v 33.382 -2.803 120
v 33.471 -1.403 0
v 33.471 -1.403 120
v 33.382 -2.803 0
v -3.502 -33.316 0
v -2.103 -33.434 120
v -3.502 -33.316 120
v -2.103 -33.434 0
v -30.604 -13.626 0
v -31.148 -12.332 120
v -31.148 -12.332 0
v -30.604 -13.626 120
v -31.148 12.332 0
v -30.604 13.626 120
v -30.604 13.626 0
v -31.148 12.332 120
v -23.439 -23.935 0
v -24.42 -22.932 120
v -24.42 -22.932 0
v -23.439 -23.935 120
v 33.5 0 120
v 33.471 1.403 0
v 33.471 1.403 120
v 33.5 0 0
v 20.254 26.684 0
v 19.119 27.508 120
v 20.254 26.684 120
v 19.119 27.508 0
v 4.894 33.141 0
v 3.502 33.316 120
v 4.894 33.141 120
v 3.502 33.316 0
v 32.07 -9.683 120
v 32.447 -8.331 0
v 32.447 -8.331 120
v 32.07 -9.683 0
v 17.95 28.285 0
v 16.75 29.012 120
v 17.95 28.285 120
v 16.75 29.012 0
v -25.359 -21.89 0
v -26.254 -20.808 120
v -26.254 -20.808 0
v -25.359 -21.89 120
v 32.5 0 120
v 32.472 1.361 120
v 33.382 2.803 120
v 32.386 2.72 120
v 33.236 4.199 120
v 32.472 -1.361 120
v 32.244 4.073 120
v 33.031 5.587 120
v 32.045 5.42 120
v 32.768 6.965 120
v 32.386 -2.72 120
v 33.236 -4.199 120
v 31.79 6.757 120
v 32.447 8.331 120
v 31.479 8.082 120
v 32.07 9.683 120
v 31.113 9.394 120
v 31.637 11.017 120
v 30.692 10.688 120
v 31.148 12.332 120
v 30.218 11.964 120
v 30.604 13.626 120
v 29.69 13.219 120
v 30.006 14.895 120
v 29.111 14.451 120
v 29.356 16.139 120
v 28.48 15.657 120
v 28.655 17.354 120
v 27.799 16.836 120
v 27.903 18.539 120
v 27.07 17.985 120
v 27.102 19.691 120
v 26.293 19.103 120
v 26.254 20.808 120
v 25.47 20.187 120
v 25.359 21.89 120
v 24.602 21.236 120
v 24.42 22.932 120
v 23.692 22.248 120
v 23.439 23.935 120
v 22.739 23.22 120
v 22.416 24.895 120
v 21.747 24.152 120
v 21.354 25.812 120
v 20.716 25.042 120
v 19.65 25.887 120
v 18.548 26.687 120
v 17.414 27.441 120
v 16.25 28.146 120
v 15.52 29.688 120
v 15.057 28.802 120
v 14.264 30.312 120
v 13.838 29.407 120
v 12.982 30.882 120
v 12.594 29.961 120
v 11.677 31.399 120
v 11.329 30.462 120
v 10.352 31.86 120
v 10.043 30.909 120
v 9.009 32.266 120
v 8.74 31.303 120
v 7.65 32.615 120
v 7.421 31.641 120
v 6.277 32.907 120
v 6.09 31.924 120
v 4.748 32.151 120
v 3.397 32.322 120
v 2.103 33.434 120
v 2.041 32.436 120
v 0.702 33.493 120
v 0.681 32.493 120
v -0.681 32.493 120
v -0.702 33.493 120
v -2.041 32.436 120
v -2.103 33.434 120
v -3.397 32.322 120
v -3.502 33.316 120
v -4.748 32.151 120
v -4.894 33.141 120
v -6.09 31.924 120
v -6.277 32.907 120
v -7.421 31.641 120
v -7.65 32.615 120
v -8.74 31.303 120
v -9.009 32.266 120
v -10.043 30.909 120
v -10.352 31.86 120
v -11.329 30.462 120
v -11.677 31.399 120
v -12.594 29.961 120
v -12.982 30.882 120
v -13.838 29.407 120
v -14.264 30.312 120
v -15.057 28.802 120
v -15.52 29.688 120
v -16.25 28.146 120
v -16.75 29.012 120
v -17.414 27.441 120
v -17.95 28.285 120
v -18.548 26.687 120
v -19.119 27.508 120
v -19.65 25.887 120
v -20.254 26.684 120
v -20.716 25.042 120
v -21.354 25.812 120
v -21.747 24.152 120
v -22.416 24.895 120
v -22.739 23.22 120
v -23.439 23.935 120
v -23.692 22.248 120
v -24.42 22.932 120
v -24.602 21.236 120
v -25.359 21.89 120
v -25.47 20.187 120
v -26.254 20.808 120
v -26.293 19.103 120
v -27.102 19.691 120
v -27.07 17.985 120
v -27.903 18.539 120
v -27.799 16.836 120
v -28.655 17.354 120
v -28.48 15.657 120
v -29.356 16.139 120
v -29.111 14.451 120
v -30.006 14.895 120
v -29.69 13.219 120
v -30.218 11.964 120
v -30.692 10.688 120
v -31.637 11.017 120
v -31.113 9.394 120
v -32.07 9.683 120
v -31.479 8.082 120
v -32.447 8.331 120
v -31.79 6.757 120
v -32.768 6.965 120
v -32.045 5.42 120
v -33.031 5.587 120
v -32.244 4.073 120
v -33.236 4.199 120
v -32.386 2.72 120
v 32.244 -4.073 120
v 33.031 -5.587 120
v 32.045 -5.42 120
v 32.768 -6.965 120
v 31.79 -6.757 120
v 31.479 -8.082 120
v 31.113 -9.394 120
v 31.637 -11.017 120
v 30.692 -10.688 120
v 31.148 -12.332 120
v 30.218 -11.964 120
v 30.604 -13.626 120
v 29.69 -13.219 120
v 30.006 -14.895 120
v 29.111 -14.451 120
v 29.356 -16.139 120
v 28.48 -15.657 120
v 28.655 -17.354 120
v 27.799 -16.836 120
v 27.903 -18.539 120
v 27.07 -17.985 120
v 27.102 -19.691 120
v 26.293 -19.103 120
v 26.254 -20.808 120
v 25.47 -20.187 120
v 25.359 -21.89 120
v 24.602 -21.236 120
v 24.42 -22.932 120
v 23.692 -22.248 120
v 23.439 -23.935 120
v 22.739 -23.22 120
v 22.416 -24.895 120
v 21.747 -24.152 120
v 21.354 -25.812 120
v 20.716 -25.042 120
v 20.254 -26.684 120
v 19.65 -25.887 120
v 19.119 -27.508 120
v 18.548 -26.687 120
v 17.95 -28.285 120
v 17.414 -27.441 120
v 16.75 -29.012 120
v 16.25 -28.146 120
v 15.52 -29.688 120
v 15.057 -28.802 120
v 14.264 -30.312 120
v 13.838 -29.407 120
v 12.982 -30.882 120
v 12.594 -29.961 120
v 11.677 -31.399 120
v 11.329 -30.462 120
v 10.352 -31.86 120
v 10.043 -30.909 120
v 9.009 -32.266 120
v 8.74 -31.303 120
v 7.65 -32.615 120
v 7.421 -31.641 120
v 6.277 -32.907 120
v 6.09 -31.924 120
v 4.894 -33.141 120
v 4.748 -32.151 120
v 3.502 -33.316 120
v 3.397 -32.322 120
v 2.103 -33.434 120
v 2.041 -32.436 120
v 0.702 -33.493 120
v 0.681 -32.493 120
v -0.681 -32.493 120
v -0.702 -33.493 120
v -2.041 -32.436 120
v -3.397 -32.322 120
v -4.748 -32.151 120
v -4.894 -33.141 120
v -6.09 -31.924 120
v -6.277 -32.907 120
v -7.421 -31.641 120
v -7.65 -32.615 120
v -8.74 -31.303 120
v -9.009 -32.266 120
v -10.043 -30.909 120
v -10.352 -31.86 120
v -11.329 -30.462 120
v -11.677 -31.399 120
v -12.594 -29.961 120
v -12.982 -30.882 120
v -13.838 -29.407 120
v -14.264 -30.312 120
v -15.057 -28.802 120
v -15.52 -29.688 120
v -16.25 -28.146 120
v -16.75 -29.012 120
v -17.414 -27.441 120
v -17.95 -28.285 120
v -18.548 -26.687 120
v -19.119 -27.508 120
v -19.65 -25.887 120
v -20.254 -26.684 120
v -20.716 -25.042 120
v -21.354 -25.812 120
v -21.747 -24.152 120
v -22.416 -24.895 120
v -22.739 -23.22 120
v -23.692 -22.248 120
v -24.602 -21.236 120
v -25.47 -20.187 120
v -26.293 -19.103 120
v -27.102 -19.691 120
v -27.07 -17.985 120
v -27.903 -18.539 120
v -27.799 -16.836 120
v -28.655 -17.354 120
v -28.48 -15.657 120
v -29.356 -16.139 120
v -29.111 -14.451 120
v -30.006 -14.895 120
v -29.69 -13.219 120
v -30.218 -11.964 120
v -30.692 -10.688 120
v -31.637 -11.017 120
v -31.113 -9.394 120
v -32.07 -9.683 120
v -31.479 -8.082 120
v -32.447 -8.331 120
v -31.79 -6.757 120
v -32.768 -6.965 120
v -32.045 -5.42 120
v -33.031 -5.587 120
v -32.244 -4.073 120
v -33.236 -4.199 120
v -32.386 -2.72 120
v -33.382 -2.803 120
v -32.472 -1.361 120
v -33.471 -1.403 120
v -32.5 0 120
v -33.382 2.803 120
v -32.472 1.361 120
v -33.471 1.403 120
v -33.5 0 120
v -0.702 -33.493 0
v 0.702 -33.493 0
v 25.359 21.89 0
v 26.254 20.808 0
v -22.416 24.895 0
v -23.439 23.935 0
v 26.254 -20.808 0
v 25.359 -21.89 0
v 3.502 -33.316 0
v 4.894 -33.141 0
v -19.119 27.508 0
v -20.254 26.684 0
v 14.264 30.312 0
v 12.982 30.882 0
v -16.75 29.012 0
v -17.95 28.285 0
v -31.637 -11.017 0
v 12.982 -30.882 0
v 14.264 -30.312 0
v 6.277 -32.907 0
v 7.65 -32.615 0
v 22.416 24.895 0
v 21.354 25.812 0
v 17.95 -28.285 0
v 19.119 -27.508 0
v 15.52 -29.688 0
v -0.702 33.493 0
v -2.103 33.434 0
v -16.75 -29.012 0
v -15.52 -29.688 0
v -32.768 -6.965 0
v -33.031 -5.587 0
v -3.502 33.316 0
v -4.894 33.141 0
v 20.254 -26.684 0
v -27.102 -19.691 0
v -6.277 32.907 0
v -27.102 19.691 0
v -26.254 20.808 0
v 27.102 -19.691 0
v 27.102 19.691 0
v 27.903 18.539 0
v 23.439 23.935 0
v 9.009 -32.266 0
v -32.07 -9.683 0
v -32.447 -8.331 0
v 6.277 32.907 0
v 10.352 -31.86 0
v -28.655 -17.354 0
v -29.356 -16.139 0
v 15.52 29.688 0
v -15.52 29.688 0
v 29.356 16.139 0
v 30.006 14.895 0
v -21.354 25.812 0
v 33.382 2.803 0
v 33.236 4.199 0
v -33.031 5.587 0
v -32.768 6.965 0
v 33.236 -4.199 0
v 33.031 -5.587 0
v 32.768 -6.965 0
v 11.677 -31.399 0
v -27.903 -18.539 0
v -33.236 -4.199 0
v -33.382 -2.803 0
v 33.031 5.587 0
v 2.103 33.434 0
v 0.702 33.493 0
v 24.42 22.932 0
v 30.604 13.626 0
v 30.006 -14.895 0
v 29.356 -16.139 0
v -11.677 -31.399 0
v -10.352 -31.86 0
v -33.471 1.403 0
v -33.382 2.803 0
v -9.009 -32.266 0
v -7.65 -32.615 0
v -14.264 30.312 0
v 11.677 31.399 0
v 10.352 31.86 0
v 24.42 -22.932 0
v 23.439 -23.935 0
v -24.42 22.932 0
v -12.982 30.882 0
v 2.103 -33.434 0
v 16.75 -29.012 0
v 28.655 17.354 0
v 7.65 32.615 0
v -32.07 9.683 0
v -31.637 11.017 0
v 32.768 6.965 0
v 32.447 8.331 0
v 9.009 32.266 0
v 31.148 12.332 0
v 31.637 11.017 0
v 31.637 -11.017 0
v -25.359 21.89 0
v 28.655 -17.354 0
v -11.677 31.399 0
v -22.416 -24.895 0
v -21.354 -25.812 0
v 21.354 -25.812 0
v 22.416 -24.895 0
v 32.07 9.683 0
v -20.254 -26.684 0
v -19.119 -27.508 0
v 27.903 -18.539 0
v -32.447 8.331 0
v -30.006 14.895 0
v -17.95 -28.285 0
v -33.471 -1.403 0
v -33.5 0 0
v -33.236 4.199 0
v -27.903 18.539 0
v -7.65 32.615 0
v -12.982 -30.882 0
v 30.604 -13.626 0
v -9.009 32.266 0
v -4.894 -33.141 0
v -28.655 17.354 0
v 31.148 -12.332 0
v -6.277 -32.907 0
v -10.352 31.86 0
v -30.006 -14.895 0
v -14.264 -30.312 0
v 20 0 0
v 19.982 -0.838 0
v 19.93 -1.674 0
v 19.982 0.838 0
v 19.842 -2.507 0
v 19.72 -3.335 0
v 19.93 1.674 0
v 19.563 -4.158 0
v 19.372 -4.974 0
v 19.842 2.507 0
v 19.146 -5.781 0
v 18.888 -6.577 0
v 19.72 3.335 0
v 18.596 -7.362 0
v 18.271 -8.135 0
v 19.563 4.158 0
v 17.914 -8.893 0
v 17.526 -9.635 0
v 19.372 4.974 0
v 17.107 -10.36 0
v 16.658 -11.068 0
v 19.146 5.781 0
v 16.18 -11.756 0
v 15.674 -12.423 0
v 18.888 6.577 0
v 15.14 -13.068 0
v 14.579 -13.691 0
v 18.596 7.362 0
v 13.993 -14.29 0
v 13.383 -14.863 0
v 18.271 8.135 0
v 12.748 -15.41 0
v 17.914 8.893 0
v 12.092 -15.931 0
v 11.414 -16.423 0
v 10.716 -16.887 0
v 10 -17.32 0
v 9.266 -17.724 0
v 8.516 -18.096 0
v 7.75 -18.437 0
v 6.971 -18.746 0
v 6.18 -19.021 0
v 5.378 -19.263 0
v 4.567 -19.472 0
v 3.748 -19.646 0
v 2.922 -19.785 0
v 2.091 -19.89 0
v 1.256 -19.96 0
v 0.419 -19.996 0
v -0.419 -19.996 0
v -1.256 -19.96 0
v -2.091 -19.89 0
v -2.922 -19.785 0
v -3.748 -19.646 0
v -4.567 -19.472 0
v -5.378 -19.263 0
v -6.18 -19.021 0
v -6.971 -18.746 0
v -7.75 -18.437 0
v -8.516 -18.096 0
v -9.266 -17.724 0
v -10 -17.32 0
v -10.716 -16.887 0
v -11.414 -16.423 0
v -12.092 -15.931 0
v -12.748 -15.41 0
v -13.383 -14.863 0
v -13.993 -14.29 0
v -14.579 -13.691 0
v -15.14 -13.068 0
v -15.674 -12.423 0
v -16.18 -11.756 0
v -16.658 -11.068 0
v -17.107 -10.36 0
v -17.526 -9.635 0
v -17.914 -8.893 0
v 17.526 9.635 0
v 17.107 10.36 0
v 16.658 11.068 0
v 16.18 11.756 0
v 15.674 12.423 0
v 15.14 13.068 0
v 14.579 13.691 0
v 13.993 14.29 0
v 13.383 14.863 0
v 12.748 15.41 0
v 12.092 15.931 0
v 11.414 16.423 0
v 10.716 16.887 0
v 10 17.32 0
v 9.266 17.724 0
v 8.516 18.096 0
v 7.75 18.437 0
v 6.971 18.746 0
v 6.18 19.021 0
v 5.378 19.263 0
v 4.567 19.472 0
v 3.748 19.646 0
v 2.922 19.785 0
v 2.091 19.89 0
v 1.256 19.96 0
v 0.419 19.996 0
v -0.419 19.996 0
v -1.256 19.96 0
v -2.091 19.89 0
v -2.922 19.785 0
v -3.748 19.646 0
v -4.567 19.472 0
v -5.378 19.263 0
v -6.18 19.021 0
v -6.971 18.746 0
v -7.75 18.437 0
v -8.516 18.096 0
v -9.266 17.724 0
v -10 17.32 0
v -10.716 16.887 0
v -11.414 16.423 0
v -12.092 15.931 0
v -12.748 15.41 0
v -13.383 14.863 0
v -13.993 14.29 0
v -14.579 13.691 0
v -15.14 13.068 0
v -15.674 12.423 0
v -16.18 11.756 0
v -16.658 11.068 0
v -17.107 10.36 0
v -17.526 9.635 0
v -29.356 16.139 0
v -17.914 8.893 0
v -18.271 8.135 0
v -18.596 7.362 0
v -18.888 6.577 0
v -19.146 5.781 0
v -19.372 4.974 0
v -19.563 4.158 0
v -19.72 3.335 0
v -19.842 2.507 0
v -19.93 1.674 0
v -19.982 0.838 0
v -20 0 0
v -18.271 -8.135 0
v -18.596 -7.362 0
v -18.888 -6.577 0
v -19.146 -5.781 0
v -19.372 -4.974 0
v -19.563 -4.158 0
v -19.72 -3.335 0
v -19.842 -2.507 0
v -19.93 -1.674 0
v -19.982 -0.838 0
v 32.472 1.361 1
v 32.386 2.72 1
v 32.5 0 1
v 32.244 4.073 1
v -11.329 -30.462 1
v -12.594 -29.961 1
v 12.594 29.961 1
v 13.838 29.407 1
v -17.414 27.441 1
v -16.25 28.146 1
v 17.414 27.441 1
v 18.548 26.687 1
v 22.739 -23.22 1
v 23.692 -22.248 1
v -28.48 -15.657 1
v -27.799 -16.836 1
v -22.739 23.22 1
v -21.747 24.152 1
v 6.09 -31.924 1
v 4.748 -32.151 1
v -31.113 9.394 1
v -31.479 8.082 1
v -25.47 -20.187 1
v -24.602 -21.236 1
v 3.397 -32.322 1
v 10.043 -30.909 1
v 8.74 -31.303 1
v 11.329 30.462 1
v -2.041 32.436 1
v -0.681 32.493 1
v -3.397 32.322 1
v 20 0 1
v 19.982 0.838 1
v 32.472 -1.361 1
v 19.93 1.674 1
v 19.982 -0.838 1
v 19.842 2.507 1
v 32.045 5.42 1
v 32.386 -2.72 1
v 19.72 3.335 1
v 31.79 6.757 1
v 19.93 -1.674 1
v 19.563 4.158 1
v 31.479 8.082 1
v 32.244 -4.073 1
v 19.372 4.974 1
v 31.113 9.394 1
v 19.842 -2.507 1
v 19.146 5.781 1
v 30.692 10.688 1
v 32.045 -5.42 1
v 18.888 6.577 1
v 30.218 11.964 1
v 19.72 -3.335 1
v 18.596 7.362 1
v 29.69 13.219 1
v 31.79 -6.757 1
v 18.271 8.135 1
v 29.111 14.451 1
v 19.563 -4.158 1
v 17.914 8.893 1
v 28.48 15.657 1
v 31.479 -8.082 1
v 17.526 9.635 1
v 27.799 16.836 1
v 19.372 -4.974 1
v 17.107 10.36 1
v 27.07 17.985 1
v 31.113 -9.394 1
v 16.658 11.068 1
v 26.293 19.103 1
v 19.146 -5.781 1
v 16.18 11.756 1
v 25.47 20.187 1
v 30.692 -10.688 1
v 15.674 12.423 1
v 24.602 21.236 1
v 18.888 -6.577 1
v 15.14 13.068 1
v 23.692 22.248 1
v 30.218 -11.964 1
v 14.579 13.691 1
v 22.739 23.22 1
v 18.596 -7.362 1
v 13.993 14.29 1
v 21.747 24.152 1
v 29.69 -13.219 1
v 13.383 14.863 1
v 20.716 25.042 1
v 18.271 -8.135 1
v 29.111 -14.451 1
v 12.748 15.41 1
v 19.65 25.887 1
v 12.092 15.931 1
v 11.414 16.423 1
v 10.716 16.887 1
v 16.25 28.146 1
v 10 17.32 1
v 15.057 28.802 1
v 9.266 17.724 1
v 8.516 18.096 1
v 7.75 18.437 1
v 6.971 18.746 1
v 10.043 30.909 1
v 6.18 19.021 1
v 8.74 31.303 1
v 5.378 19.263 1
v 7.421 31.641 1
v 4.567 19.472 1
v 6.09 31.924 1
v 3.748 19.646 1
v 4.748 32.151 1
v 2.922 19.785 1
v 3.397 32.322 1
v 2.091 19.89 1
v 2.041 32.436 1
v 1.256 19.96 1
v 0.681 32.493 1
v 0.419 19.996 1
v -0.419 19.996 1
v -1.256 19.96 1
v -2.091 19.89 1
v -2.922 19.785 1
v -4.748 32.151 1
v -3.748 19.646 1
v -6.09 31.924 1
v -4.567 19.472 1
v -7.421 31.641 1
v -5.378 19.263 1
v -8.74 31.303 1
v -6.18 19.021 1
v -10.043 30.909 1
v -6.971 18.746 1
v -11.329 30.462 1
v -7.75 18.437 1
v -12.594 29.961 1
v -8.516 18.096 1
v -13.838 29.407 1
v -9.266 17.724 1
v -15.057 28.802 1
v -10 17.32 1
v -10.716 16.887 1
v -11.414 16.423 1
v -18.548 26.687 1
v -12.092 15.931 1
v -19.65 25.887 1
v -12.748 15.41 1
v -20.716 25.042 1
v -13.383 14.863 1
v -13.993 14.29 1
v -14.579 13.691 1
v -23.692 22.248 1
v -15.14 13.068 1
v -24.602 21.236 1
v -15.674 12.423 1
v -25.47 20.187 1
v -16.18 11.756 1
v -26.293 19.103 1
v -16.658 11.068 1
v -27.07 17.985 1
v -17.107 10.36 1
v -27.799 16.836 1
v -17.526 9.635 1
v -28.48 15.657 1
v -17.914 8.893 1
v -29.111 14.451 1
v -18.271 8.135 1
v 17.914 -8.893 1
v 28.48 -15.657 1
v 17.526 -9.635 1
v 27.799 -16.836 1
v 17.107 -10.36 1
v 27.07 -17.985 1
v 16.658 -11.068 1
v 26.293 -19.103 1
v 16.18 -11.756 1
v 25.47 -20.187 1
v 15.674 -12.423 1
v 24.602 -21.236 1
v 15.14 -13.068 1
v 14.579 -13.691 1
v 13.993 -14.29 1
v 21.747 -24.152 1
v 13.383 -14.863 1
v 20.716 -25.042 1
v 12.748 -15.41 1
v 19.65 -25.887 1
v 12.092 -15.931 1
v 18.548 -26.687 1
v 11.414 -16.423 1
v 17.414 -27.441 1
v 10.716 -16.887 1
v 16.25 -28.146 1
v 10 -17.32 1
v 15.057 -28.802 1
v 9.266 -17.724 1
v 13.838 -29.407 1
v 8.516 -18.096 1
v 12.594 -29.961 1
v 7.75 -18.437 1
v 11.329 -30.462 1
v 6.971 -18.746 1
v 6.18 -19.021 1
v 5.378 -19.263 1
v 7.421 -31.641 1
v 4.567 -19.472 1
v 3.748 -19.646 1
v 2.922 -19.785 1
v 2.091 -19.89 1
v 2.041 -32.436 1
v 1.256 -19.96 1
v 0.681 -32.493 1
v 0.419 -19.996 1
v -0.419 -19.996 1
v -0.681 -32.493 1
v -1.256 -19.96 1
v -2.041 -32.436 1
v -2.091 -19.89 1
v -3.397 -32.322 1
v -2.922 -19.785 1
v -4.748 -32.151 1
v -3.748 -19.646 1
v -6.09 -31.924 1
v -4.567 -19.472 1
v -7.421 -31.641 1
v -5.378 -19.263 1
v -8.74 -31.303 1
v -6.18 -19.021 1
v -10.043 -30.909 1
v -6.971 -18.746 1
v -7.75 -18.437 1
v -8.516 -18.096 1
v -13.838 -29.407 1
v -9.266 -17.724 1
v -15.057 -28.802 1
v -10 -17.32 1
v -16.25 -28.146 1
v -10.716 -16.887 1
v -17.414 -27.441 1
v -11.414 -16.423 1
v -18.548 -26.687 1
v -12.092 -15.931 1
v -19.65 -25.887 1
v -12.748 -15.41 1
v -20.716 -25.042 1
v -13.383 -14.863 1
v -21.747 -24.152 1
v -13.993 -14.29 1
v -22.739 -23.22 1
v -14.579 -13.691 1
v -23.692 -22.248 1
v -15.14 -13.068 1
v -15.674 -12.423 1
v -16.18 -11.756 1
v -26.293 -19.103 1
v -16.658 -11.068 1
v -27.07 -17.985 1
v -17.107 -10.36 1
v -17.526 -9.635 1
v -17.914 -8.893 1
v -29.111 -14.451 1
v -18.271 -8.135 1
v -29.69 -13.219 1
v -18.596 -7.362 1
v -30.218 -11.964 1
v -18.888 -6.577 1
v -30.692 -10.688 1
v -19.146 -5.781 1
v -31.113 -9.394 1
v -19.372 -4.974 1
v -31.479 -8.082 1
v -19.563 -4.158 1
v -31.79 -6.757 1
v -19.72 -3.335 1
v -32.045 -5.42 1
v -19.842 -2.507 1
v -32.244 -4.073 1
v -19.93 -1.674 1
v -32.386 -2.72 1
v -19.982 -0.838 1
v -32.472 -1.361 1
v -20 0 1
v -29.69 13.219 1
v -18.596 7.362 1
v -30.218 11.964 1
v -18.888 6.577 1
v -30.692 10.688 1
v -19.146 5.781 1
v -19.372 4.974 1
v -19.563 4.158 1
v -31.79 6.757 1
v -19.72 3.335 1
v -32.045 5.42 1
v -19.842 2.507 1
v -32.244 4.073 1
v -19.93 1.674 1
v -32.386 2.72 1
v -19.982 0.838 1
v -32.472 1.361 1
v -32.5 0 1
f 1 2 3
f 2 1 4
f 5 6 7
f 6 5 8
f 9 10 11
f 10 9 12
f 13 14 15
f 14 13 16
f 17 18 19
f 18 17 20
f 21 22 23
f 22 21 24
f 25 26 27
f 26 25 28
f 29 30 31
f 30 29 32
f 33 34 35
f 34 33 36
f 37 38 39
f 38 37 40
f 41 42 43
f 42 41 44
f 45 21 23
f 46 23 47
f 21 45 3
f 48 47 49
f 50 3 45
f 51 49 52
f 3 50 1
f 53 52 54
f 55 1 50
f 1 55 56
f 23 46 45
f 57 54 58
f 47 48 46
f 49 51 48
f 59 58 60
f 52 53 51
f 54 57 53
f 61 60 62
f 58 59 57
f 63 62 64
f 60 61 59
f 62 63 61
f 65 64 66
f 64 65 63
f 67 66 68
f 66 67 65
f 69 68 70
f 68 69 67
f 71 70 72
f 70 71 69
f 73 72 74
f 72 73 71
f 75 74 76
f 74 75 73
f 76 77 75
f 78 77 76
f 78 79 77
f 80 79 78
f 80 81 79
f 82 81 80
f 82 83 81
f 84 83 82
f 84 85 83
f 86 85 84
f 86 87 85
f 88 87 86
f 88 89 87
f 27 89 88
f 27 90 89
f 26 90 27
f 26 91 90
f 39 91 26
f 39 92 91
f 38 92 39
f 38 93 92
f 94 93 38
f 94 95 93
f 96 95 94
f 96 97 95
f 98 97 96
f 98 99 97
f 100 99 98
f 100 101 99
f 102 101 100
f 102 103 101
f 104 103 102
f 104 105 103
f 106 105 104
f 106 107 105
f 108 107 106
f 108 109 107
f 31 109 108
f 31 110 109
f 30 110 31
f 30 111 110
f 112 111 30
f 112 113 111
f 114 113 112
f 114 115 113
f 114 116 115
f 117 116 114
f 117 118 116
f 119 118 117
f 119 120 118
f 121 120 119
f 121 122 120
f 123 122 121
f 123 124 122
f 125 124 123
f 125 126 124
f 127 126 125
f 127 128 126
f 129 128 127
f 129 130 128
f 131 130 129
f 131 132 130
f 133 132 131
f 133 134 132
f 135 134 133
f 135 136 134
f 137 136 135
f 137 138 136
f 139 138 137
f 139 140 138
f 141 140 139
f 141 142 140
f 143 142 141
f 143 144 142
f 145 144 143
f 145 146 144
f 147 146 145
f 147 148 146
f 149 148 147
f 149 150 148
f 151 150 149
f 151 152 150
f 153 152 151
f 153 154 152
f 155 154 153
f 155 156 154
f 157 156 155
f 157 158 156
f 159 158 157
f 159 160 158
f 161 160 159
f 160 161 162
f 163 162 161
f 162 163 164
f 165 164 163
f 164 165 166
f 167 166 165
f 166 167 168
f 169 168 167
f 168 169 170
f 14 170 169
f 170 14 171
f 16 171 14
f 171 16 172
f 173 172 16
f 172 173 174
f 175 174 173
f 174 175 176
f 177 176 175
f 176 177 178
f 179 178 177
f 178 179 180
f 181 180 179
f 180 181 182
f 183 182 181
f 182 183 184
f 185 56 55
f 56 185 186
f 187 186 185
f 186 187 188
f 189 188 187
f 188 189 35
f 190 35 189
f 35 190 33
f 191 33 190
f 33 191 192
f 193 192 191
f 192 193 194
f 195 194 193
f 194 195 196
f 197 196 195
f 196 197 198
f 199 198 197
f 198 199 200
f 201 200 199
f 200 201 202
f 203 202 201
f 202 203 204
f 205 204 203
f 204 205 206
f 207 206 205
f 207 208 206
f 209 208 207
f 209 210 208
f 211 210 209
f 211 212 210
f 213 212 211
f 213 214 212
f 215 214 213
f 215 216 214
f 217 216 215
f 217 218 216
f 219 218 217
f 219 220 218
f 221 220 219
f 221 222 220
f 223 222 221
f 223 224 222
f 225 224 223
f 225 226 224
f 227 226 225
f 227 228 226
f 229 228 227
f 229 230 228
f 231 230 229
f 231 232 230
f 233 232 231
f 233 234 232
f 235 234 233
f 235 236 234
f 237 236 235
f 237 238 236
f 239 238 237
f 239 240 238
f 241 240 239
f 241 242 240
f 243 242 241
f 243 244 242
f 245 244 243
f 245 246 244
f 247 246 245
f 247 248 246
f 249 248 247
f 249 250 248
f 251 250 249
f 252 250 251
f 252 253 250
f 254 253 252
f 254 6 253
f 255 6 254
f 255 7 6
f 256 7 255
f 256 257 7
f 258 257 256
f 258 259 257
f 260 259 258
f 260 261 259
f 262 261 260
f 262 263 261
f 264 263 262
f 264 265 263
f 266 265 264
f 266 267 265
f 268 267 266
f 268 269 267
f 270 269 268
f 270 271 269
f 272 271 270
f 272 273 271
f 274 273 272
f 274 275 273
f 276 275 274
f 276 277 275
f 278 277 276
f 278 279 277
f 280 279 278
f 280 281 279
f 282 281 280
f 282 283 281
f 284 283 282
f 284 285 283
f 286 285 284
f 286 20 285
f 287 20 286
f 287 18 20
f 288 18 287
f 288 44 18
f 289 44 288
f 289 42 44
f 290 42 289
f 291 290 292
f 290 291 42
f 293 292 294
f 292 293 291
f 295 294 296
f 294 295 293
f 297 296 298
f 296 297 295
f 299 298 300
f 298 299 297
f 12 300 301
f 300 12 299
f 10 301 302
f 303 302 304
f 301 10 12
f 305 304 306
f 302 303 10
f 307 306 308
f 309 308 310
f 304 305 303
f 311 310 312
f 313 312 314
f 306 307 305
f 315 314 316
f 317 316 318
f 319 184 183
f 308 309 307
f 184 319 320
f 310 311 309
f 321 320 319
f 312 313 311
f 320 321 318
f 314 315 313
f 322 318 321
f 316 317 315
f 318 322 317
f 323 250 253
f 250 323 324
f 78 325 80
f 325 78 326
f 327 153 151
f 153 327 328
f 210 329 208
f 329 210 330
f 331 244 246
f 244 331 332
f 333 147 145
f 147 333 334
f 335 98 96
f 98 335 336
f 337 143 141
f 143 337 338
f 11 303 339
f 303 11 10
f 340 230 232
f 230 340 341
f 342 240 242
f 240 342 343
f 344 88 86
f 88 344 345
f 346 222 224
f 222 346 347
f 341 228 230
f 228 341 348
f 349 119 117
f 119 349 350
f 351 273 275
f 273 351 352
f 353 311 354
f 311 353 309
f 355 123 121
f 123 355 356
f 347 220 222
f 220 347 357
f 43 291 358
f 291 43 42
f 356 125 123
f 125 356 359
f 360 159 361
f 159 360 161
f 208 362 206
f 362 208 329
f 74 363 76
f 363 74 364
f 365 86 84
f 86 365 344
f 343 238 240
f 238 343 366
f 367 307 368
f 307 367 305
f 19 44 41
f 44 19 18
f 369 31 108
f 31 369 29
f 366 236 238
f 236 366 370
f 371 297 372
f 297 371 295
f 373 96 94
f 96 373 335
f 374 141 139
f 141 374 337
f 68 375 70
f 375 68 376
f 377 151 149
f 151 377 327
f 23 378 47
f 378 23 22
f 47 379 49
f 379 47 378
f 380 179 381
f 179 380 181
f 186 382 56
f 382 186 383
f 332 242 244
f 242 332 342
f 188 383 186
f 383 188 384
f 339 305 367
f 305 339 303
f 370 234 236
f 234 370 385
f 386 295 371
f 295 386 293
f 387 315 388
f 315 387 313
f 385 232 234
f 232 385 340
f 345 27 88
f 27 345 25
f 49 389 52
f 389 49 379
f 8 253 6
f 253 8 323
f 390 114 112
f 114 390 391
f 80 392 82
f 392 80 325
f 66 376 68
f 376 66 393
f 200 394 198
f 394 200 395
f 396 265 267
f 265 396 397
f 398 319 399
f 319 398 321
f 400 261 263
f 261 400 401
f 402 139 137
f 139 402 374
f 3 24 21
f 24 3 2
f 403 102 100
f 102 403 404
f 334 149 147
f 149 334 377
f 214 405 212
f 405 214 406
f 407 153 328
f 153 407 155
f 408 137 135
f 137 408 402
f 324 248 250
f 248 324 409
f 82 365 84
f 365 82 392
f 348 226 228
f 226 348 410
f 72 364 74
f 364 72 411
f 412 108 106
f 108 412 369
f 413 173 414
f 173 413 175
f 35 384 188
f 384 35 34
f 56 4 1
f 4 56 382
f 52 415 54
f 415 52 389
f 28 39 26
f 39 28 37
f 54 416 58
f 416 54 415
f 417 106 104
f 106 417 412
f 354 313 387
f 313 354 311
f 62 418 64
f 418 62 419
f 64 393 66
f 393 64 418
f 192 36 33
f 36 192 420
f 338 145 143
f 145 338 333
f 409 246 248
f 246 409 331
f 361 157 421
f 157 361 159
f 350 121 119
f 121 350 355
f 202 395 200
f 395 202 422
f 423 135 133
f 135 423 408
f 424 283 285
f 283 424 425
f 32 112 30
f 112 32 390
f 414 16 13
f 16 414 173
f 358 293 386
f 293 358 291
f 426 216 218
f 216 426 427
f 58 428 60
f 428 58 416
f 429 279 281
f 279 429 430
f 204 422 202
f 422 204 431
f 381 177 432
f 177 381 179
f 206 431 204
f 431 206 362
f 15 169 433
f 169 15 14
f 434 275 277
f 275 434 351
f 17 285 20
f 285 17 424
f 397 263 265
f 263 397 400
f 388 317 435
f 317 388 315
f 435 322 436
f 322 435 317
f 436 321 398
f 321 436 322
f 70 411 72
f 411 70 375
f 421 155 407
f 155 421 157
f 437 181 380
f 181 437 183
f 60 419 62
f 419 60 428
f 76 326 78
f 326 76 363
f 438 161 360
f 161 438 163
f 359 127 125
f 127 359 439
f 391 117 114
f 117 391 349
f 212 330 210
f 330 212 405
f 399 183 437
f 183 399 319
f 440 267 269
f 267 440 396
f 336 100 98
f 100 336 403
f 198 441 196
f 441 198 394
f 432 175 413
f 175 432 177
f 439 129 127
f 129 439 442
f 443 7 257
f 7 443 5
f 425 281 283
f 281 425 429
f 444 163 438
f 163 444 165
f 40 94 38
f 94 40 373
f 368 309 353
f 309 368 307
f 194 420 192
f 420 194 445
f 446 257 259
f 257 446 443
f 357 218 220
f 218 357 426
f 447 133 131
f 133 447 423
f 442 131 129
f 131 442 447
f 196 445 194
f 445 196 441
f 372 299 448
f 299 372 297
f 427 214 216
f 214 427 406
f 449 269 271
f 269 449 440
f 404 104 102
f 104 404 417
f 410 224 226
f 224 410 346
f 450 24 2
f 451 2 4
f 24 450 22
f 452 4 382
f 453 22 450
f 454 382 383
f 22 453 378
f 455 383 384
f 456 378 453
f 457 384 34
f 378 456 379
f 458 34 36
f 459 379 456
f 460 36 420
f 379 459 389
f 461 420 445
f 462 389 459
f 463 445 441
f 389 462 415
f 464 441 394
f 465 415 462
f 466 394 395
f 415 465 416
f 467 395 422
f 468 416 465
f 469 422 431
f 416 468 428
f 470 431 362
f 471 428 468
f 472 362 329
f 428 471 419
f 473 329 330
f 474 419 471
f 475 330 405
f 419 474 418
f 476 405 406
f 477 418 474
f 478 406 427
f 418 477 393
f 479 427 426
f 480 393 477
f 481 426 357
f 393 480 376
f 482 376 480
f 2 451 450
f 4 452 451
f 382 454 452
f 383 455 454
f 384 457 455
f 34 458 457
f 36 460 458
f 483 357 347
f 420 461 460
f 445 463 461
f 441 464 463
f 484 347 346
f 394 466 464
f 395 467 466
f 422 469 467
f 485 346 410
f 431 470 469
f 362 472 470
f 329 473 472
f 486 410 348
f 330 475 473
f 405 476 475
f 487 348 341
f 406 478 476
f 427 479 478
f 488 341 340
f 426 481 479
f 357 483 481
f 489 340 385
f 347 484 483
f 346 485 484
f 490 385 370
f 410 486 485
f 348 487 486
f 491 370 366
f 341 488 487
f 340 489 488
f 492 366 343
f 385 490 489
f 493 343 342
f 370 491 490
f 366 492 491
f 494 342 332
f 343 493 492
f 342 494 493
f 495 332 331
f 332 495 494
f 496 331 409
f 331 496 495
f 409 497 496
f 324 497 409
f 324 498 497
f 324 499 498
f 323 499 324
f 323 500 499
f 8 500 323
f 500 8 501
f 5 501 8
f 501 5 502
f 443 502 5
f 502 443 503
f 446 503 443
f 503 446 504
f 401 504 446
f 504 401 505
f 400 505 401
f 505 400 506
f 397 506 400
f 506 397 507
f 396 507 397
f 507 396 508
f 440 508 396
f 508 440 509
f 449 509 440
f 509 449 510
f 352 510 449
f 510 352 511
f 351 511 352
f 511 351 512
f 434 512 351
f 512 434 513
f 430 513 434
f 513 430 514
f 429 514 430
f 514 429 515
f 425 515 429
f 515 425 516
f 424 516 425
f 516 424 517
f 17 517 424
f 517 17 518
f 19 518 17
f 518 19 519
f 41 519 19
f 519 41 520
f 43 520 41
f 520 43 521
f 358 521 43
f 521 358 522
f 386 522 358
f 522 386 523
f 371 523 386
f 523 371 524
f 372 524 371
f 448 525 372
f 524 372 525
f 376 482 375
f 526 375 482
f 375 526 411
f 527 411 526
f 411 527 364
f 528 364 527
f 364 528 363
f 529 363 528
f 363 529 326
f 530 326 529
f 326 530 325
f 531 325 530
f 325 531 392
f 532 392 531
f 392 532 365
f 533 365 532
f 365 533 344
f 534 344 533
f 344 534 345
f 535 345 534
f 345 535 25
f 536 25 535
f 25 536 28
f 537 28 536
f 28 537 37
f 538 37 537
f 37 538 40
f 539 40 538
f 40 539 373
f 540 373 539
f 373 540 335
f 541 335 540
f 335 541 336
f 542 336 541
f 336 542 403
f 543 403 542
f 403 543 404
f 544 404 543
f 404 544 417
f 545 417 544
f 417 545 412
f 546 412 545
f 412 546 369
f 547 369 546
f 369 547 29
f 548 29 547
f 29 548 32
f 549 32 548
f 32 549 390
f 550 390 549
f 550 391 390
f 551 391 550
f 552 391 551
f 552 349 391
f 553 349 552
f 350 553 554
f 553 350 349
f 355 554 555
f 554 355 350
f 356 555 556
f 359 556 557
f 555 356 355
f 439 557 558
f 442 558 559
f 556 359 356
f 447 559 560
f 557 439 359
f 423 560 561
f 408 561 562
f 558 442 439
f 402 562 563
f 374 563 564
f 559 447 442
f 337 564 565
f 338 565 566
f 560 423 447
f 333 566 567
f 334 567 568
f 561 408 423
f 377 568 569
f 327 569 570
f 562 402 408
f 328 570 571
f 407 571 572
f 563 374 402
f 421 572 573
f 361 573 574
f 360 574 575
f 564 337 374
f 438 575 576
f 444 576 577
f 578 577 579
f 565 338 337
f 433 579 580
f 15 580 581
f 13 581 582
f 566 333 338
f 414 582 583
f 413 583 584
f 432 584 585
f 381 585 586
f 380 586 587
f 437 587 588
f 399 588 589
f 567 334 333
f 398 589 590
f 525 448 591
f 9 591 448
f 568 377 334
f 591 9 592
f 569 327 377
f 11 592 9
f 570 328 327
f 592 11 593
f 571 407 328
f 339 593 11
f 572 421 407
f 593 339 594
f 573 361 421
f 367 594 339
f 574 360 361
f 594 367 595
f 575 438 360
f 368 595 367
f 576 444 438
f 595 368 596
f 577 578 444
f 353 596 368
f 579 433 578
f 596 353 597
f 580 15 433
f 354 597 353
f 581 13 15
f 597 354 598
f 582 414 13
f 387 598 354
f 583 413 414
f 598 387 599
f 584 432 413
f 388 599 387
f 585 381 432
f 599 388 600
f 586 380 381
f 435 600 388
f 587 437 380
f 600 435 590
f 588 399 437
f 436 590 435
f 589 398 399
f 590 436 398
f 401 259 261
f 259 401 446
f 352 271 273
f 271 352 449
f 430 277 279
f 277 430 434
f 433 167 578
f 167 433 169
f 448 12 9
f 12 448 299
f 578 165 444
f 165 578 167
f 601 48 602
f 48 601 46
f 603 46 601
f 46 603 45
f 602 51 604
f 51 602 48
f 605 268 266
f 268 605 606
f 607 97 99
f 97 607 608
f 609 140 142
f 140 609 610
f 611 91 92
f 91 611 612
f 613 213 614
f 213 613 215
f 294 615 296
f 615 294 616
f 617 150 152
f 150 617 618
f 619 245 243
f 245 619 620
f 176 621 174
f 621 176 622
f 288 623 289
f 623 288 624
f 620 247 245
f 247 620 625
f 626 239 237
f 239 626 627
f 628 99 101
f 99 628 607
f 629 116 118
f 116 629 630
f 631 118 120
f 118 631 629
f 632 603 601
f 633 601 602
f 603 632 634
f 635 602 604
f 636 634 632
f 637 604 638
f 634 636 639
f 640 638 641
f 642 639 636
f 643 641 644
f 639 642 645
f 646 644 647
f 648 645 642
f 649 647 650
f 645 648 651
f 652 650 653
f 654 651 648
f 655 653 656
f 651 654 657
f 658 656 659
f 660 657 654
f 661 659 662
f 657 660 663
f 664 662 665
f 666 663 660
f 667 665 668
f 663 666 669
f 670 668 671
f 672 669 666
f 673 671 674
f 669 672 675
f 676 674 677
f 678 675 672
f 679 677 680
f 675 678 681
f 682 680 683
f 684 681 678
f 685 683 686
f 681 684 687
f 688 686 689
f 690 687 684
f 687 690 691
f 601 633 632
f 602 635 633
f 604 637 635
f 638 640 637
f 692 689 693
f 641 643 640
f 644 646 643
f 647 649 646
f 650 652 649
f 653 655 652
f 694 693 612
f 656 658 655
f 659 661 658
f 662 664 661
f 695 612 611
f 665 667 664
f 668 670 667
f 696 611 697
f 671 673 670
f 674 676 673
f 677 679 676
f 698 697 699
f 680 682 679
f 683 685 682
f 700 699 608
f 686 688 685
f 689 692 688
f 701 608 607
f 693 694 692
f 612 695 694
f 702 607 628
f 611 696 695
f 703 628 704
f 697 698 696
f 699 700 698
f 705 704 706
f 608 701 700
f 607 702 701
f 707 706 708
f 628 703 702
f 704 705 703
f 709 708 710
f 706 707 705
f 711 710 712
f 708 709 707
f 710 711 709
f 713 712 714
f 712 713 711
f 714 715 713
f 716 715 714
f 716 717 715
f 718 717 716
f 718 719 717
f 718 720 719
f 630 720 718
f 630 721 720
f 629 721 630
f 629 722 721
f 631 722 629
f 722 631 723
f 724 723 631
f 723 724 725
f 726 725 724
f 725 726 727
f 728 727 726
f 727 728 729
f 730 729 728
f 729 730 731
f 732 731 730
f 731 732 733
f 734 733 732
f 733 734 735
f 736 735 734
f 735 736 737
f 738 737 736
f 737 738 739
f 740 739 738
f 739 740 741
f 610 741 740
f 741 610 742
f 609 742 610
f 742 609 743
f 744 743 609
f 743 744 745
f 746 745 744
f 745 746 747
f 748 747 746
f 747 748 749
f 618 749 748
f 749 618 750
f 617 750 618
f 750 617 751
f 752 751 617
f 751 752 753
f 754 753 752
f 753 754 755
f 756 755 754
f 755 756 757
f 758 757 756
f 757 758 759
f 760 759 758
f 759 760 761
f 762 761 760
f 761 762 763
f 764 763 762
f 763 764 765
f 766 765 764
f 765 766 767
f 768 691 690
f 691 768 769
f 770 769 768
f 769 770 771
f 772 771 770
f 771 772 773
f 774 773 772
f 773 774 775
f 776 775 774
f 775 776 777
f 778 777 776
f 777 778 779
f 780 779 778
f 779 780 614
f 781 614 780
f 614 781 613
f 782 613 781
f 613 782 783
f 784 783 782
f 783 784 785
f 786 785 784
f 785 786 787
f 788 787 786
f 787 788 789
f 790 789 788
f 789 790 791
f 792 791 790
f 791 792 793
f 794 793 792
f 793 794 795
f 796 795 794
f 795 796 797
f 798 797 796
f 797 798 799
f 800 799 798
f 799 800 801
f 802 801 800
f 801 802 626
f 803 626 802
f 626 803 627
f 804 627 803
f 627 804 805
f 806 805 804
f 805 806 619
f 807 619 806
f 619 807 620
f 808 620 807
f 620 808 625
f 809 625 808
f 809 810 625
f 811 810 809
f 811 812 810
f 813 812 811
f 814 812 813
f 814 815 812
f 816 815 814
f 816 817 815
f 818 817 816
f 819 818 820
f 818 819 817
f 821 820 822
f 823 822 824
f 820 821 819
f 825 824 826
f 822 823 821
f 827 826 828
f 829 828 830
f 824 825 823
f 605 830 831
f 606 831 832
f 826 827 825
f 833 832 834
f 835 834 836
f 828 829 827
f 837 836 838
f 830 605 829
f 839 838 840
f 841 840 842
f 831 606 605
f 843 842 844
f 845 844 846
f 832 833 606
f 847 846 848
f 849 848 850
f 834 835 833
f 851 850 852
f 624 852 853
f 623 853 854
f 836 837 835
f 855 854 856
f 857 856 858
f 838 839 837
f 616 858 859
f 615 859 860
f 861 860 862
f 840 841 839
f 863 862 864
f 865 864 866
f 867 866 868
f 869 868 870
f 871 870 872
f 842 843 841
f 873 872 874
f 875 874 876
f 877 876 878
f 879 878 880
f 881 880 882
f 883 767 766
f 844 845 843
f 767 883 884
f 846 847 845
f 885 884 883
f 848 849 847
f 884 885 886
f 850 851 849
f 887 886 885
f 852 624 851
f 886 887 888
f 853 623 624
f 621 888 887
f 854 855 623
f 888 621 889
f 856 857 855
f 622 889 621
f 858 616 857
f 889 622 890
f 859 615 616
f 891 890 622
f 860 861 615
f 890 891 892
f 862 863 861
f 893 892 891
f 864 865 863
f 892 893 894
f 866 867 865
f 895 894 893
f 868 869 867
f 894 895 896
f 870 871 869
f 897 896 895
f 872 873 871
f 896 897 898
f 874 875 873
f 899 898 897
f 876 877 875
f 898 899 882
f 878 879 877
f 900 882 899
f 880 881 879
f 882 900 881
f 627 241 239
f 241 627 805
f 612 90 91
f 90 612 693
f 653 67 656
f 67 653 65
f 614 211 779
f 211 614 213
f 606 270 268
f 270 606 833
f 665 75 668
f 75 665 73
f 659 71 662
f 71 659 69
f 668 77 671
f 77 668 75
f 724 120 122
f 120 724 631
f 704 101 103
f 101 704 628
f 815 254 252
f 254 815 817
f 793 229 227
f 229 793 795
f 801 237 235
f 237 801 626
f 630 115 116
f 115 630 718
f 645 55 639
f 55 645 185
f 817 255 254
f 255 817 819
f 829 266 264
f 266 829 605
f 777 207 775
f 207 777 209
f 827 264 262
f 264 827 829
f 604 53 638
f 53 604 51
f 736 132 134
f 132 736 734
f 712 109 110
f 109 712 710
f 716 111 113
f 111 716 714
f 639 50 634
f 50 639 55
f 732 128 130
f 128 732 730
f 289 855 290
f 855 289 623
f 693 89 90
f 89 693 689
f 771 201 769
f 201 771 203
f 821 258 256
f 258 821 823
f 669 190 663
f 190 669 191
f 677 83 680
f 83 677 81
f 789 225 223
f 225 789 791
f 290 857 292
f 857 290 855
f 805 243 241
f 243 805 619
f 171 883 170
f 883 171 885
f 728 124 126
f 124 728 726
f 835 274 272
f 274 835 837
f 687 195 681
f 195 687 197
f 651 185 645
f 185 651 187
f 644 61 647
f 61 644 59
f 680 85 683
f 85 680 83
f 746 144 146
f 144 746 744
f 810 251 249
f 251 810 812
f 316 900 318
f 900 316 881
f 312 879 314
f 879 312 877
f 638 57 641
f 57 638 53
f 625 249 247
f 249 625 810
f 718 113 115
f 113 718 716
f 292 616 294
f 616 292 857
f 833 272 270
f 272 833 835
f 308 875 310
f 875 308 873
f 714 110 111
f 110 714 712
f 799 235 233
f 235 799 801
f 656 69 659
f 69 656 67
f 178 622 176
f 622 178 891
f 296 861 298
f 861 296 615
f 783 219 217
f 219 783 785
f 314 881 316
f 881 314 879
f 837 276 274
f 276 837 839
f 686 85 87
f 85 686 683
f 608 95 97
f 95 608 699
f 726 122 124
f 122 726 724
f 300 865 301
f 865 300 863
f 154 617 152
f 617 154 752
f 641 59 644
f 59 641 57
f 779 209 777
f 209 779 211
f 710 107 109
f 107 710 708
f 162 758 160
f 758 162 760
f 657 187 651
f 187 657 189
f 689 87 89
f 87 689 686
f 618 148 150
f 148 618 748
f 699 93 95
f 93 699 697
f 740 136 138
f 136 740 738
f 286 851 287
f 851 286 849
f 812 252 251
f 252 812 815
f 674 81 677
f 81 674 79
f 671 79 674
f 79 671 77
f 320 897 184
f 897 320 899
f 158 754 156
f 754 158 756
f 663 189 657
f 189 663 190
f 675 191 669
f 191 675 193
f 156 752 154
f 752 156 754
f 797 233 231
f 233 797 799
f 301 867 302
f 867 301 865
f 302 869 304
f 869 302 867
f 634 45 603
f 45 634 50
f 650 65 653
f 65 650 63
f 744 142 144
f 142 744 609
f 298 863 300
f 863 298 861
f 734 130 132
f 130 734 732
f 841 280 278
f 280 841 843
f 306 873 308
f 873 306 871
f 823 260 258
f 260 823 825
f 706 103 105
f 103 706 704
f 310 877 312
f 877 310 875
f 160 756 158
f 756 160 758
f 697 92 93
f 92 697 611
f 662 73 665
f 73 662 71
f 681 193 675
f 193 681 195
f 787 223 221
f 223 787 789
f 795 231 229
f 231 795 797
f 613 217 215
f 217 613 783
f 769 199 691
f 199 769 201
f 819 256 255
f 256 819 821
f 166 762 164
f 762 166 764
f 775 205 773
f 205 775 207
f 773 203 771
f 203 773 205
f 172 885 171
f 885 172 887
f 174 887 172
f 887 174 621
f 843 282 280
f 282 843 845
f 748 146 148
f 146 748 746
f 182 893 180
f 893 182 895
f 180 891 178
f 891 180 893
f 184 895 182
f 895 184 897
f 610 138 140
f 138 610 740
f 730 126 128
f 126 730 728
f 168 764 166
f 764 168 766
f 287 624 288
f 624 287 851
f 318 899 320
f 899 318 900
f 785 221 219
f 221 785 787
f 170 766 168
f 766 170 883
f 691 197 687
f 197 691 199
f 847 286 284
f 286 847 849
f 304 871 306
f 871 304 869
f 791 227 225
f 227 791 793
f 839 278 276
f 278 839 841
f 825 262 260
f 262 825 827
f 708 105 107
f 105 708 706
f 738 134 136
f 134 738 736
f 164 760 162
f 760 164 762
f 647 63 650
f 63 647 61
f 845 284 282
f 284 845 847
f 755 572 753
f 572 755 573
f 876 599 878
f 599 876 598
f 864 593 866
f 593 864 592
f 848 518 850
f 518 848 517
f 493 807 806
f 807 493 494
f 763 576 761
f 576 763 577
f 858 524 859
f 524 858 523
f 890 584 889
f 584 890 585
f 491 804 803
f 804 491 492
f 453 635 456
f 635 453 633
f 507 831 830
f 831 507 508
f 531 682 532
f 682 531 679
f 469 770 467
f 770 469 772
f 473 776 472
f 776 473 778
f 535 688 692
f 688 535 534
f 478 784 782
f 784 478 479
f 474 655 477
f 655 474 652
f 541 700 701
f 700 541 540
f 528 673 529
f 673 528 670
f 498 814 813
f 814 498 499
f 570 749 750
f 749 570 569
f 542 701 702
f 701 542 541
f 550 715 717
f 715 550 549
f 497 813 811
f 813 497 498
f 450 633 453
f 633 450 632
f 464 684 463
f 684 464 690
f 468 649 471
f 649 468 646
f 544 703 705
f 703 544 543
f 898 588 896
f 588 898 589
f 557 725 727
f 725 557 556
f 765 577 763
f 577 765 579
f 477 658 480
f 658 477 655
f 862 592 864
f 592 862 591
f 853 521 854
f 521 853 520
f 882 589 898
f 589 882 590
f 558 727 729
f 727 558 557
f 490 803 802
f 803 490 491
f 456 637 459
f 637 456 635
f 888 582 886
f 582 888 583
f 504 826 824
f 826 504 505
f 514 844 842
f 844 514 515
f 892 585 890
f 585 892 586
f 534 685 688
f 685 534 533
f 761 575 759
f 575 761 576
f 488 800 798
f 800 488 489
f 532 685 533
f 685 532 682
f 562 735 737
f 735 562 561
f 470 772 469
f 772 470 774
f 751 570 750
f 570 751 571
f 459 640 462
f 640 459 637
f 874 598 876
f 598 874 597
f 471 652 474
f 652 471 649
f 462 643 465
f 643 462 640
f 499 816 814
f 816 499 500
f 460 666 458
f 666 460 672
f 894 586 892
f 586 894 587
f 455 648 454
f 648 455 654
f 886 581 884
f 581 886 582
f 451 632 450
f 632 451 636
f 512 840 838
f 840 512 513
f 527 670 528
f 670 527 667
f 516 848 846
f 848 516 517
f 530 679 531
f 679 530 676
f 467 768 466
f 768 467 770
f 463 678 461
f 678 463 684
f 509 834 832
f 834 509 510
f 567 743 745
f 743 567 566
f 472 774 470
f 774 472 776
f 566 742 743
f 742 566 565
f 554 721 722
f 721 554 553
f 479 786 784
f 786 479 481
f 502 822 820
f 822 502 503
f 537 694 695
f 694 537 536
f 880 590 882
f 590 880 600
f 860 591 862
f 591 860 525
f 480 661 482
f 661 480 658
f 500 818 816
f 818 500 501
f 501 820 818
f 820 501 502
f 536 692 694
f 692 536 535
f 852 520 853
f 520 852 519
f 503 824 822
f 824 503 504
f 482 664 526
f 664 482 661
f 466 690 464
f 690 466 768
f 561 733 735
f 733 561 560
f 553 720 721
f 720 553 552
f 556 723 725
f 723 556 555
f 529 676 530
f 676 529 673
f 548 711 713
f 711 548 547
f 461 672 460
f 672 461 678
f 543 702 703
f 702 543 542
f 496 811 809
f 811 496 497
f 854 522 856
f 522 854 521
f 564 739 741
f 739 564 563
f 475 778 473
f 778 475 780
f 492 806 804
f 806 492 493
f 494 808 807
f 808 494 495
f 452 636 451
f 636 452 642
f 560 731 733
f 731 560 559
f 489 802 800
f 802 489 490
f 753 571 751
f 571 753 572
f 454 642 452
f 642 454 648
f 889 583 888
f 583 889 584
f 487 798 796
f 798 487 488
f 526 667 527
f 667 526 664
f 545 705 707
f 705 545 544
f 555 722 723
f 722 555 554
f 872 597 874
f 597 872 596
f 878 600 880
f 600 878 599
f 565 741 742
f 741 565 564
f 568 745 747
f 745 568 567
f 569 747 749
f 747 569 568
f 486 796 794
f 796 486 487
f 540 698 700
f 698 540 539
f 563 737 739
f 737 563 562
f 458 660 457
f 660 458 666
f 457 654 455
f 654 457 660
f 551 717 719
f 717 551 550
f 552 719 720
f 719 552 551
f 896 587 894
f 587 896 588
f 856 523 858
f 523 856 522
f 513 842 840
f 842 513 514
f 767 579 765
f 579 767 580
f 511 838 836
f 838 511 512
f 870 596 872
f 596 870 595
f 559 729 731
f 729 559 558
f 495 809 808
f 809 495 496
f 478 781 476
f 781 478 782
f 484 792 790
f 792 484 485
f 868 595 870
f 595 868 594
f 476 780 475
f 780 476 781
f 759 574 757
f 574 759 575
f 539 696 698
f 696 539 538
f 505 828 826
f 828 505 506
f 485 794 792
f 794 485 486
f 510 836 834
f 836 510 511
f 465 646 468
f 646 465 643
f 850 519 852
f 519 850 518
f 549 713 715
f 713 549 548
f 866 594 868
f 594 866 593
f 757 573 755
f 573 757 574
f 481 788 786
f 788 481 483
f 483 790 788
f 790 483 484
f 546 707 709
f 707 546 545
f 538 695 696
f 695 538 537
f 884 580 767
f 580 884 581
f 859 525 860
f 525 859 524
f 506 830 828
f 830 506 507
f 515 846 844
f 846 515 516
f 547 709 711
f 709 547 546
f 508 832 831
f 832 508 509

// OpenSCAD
//=============================================================================
// havsris-shade.scad
//
// Lamp shade for IKEA's HAVSRIS cordset.
//=============================================================================
// Written in 2023 by Patrick Barrett
//
// To the extent possible under law, the author(s) have dedicated all copyright
// and related and neighboring rights to this work to the public domain
// worldwide. This work is distributed without any warranty.
//
// See <http://creativecommons.org/publicdomain/zero/1.0/> for full dedication.
//=============================================================================

//=============================================================================
// dimensions
//=============================================================================

wall = 1;

body_id = 65;
body_h = 120;

socket_d = 40;

$fn = 150;

abit = 0.01;
alot = 1000;

body_od = body_id + 2*wall;

//=============================================================================
// main soild
//=============================================================================

difference() {
    cylinder(d = body_od, h = body_h);
    
    translate([0,0,wall])
    cylinder(d = body_id, h = alot);
    
    translate([0,0,-abit])
    cylinder(d = socket_d, h = alot);
}
    
